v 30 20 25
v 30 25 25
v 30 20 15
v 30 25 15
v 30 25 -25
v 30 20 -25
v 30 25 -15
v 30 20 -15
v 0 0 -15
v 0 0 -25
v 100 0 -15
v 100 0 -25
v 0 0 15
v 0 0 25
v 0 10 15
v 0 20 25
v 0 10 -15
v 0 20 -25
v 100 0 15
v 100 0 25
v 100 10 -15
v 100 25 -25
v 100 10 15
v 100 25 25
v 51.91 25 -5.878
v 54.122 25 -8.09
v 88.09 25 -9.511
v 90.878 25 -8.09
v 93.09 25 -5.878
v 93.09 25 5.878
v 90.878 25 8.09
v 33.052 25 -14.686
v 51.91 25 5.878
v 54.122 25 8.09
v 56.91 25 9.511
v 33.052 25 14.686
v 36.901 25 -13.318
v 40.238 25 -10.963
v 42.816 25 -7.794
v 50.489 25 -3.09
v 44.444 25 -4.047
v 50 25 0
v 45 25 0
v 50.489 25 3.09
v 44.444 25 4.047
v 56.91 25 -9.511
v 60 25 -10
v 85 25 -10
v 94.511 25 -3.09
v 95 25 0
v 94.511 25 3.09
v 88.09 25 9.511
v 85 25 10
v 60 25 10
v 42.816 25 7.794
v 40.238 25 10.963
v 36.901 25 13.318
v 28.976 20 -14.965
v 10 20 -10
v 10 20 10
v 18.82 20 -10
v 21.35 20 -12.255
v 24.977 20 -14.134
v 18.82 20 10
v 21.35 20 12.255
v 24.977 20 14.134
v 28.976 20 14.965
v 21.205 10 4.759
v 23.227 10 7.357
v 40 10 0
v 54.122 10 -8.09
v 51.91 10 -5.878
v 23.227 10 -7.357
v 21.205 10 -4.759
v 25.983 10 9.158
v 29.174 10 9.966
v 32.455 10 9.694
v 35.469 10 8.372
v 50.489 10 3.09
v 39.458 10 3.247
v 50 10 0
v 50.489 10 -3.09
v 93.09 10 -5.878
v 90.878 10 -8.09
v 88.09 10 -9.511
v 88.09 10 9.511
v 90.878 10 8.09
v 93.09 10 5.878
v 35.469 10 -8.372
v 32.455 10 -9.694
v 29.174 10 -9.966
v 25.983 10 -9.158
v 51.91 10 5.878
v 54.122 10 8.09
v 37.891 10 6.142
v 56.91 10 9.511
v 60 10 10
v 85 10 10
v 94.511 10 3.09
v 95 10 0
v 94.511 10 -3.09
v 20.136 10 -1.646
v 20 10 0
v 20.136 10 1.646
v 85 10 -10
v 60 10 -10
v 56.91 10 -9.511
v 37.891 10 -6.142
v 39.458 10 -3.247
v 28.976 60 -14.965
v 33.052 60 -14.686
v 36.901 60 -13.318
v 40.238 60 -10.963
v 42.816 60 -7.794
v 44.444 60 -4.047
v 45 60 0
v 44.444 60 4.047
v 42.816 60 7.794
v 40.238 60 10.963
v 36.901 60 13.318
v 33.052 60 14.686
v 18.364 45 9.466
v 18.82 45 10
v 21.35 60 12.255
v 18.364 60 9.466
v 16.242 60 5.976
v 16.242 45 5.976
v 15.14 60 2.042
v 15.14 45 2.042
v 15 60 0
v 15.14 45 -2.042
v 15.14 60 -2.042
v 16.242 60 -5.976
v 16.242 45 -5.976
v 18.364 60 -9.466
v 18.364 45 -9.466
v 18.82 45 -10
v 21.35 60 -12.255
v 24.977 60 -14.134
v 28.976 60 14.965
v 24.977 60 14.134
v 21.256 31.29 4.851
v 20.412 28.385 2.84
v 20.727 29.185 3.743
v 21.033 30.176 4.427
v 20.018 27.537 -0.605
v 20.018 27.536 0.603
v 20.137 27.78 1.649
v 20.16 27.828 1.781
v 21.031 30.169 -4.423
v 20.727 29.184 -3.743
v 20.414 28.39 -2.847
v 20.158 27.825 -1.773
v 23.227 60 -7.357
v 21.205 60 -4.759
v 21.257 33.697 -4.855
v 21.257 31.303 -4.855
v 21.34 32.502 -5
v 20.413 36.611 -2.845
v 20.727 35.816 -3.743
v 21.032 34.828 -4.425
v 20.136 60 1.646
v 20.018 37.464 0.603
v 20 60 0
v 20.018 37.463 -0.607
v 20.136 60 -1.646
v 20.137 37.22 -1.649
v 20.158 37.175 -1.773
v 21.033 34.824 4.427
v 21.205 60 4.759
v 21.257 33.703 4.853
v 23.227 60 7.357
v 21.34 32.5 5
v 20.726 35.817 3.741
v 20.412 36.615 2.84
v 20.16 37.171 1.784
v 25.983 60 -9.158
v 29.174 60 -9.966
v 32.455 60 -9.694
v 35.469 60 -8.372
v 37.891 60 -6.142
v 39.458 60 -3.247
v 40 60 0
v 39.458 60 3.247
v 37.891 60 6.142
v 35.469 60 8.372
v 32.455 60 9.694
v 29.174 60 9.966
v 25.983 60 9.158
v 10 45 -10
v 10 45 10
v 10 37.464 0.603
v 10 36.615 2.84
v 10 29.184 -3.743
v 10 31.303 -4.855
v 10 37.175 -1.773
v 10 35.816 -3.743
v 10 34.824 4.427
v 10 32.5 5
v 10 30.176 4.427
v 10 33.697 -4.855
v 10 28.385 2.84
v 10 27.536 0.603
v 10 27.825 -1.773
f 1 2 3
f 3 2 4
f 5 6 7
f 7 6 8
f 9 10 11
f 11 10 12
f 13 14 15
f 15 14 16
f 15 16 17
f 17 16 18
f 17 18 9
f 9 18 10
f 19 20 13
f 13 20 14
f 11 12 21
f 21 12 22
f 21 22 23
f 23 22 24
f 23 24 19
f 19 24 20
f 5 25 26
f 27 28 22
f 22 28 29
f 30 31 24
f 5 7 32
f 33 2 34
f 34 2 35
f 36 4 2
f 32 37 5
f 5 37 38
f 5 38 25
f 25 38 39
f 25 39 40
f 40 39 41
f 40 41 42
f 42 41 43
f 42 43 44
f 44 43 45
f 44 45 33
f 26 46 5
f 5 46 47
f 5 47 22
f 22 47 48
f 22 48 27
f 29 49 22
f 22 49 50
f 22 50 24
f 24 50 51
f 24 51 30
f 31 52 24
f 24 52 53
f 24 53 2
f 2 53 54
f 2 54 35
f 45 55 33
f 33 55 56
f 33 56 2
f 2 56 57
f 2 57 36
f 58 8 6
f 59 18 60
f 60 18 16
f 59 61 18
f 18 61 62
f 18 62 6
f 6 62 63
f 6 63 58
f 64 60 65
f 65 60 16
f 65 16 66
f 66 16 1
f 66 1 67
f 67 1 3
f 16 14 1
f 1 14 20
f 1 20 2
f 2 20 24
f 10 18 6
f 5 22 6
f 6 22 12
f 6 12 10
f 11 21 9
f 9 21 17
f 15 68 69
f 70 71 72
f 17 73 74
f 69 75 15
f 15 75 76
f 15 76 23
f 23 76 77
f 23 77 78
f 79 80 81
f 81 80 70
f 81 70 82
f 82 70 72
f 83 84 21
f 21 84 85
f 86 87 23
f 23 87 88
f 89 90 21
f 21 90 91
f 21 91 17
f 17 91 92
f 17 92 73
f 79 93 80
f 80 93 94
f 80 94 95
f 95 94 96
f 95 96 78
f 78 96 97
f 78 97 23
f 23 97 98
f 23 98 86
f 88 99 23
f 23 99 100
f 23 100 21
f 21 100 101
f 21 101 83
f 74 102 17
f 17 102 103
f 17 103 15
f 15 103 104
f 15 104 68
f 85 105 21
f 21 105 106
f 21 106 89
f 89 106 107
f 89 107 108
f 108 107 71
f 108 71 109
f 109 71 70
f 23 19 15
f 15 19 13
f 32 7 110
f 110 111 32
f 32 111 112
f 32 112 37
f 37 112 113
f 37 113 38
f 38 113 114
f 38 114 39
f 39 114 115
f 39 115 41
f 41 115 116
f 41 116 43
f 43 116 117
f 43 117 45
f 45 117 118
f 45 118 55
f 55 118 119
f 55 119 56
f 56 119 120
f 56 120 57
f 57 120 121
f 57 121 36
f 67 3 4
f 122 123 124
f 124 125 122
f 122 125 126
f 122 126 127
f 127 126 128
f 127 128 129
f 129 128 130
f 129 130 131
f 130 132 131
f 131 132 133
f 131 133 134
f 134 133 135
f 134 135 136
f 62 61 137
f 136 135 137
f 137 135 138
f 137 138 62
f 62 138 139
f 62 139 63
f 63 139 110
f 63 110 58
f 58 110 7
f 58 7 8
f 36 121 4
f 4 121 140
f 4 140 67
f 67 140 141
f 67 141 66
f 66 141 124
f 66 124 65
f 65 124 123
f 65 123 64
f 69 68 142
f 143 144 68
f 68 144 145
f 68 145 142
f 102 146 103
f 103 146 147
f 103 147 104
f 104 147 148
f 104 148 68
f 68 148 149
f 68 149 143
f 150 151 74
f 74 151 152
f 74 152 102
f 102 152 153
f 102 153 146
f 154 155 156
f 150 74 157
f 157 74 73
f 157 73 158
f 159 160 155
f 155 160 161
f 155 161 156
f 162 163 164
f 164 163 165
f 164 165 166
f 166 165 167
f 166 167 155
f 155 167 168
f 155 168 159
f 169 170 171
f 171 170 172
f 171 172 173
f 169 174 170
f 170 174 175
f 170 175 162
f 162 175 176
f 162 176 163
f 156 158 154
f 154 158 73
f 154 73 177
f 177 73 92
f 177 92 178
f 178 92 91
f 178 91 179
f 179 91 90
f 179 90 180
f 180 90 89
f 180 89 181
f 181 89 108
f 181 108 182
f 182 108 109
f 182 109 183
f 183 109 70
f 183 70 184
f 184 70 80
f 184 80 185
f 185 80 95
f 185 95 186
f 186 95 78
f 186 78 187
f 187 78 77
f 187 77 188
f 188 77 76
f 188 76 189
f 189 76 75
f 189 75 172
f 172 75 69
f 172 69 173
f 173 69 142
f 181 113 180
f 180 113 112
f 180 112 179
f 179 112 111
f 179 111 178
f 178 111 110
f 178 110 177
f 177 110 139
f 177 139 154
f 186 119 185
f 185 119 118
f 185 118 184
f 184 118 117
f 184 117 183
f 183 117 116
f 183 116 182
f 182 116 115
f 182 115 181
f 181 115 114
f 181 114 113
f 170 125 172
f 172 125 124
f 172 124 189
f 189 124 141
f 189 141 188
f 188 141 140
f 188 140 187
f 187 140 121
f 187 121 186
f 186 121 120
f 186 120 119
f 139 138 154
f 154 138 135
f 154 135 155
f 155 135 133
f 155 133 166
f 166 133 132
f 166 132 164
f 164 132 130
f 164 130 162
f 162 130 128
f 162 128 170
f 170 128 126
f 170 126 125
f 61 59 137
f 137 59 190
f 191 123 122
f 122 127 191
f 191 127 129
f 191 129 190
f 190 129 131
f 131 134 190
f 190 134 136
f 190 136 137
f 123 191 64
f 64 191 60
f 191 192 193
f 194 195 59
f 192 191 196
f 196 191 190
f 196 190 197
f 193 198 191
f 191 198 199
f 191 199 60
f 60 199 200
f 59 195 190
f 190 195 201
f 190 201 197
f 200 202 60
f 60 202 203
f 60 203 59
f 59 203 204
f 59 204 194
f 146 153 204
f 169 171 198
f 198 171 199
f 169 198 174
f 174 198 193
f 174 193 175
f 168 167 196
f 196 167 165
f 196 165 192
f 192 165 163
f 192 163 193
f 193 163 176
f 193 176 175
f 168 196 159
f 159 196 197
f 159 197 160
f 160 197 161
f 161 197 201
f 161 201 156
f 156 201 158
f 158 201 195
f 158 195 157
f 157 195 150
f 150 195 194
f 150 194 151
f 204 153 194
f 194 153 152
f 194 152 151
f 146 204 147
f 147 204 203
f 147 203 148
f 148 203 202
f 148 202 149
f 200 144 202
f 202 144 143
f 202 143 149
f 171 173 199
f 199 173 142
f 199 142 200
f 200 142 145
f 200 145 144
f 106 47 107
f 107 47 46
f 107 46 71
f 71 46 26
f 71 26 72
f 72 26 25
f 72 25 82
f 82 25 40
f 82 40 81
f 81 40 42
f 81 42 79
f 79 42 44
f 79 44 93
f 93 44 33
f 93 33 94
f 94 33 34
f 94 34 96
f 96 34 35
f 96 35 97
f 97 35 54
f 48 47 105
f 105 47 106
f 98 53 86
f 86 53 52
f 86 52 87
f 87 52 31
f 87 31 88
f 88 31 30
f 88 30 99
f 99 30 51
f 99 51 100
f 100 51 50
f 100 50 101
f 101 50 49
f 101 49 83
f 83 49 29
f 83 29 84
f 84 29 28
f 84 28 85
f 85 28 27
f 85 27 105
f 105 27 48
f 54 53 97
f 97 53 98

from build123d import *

# Parameters (mm, degrees)
BOSS_EXTRUDE1_DEPTH             = 25
SKETCH2_W                       = 30
SKETCH2_H                       = 10
CUT_EXTRUDE1_DEPTH              = 107.066017178
BOSS_EXTRUDE2_REACH             = 108.066
SKETCH3_R                       = 15
SKETCH3_R_2                     = 10
BOSS_EXTRUDE2_DIRECTION_2_DEPTH = 35
CUT_EXTRUDE2_DEPTH              = 109.857705285
BOSS_EXTRUDE3_REACH             = 113.018
BOSS_EXTRUDE3_END_RADIUS        = 15
SKETCH4_W                       = 20
SKETCH4_H                       = 25
CUT_EXTRUDE3_REACH              = 113.018
CUT_EXTRUDE3_END_RADIUS         = 10
SKETCH5_R                       = 5
CUT_EXTRUDE4_REACH              = 110.858


with BuildPart() as part:
    # Sketch1 → Boss-Extrude1 (new, symmetric)
    with BuildSketch(Plane.XY):
        Polygon((0, 0), (100, 0), (100, 25), (30, 25), (30, 20), (0, 20), align=None)
    extrude(amount=BOSS_EXTRUDE1_DEPTH, both=True)

    # Sketch2 → Cut-Extrude1 (cut, through all)
    with BuildSketch(Plane.ZY):
        with Locations((0, 5)):
            Rectangle(SKETCH2_W, SKETCH2_H)
    extrude(amount=-CUT_EXTRUDE1_DEPTH, mode=Mode.SUBTRACT)

    # Boss-Extrude2: up to this face of the body (flat: up to its plane)
    boss_extrude2_end = Plane(part.part.faces().sort_by_distance((15, 20, 0))[0])
    # Sketch3 → Boss-Extrude2 (add, up to the picked face)
    with BuildSketch(Plane(origin=(0, 25, 0), x_dir=(1, 0, 0), z_dir=(0, 1, 0)), mode=Mode.PRIVATE) as boss_extrude2_sk1:
        with Locations(Location((30, 0, 0), (0, 0, 270))):
            Circle(SKETCH3_R)
        with Locations(Location((30, 0, 0), (0, 0, 90))):
            Circle(SKETCH3_R_2, mode=Mode.SUBTRACT)
    boss_extrude2_tool1 = split(extrude(boss_extrude2_sk1.sketch, amount=-BOSS_EXTRUDE2_REACH, mode=Mode.PRIVATE), bisect_by=boss_extrude2_end, keep=Keep.BOTH, mode=Mode.PRIVATE)
    add(boss_extrude2_tool1.solids().sort_by(Axis((30, 25, -14.575736), (0, -1, 0)))[0])

    # Sketch3 → Boss-Extrude2 direction 2 (add)
    with BuildSketch(Plane(origin=(0, 25, 0), x_dir=(1, 0, 0), z_dir=(0, 1, 0))):
        with Locations(Location((30, 0, 0), (0, 0, 270))):
            Circle(SKETCH3_R)
        with Locations(Location((30, 0, 0), (0, 0, 90))):
            Circle(SKETCH3_R_2, mode=Mode.SUBTRACT)
    extrude(amount=BOSS_EXTRUDE2_DIRECTION_2_DEPTH)

    # Sketch3<2> → Cut-Extrude2 (cut, through all)
    with BuildSketch(Plane(origin=(0, 25, 0), x_dir=(1, 0, 0), z_dir=(0, 1, 0))):
        with BuildLine():
            Line((30, -10), (30, 10))
            ThreePointArc((30, 10), (20, 0), (30, -10))
        make_face()
        with BuildLine():
            ThreePointArc((40, 0), (37.071067812, 7.071067812), (30, 10))
            Line((30, 10), (30, -10))
            ThreePointArc((30, -10), (37.071067812, -7.071067812), (40, 0))
        make_face()
    extrude(amount=-CUT_EXTRUDE2_DEPTH, mode=Mode.SUBTRACT)

    # Boss-Extrude3: up to this cylinder (the profile starts outside it)
    boss_extrude3_end = Plane(origin=(30, 32.5, 0), z_dir=(0, -1, 0)) * Cylinder(BOSS_EXTRUDE3_END_RADIUS, 257.036, mode=Mode.PRIVATE)
    # Sketch4 → Boss-Extrude3 (add, up to the surface)
    with BuildSketch(Plane.ZY.offset(-10), mode=Mode.PRIVATE) as boss_extrude3_sk1:
        with Locations((0, 32.5)):
            Rectangle(SKETCH4_W, SKETCH4_H)
    boss_extrude3_tool1 = extrude(boss_extrude3_sk1.sketch, amount=-BOSS_EXTRUDE3_REACH, mode=Mode.PRIVATE) - boss_extrude3_end
    add(boss_extrude3_tool1.solids().sort_by_distance((10, 32.5, 0))[0])

    # Cut-Extrude3: up to this cylinder (the profile starts outside it)
    cut_extrude3_end = Plane(origin=(30, 32.5, 0), z_dir=(0, -1, 0)) * Cylinder(CUT_EXTRUDE3_END_RADIUS, 247.036, mode=Mode.PRIVATE)
    # Sketch5 → Cut-Extrude3 (cut, up to the surface)
    with BuildSketch(Plane.ZY.offset(-10), mode=Mode.PRIVATE) as cut_extrude3_sk1:
        with Locations((0, 32.5)):
            Circle(SKETCH5_R)
    cut_extrude3_tool1 = extrude(cut_extrude3_sk1.sketch, amount=-CUT_EXTRUDE3_REACH, mode=Mode.PRIVATE) - cut_extrude3_end
    add(cut_extrude3_tool1.solids().sort_by_distance((10, 32.5, 0))[0], mode=Mode.SUBTRACT)

    # Sketch6 → Cut-Extrude4 (cut, up to next)
    with BuildSketch(Plane(origin=(0, 25, 0), x_dir=(1, 0, 0), z_dir=(0, 1, 0)), mode=Mode.PRIVATE) as cut_extrude4_sk1:
        with BuildLine():
            Line((60, 10), (85, 10))
            ThreePointArc((85, 10), (95, 0), (85, -10))
            Line((85, -10), (60, -10))
            ThreePointArc((60, -10), (50, 0), (60, 10))
        make_face()
    cut_extrude4_tool1 = extrude(cut_extrude4_sk1.sketch, amount=-CUT_EXTRUDE4_REACH, mode=Mode.PRIVATE) & part.part
    add(cut_extrude4_tool1.solids().sort_by_distance((72.5, 25, 0))[0], mode=Mode.SUBTRACT)


solid = part.part
